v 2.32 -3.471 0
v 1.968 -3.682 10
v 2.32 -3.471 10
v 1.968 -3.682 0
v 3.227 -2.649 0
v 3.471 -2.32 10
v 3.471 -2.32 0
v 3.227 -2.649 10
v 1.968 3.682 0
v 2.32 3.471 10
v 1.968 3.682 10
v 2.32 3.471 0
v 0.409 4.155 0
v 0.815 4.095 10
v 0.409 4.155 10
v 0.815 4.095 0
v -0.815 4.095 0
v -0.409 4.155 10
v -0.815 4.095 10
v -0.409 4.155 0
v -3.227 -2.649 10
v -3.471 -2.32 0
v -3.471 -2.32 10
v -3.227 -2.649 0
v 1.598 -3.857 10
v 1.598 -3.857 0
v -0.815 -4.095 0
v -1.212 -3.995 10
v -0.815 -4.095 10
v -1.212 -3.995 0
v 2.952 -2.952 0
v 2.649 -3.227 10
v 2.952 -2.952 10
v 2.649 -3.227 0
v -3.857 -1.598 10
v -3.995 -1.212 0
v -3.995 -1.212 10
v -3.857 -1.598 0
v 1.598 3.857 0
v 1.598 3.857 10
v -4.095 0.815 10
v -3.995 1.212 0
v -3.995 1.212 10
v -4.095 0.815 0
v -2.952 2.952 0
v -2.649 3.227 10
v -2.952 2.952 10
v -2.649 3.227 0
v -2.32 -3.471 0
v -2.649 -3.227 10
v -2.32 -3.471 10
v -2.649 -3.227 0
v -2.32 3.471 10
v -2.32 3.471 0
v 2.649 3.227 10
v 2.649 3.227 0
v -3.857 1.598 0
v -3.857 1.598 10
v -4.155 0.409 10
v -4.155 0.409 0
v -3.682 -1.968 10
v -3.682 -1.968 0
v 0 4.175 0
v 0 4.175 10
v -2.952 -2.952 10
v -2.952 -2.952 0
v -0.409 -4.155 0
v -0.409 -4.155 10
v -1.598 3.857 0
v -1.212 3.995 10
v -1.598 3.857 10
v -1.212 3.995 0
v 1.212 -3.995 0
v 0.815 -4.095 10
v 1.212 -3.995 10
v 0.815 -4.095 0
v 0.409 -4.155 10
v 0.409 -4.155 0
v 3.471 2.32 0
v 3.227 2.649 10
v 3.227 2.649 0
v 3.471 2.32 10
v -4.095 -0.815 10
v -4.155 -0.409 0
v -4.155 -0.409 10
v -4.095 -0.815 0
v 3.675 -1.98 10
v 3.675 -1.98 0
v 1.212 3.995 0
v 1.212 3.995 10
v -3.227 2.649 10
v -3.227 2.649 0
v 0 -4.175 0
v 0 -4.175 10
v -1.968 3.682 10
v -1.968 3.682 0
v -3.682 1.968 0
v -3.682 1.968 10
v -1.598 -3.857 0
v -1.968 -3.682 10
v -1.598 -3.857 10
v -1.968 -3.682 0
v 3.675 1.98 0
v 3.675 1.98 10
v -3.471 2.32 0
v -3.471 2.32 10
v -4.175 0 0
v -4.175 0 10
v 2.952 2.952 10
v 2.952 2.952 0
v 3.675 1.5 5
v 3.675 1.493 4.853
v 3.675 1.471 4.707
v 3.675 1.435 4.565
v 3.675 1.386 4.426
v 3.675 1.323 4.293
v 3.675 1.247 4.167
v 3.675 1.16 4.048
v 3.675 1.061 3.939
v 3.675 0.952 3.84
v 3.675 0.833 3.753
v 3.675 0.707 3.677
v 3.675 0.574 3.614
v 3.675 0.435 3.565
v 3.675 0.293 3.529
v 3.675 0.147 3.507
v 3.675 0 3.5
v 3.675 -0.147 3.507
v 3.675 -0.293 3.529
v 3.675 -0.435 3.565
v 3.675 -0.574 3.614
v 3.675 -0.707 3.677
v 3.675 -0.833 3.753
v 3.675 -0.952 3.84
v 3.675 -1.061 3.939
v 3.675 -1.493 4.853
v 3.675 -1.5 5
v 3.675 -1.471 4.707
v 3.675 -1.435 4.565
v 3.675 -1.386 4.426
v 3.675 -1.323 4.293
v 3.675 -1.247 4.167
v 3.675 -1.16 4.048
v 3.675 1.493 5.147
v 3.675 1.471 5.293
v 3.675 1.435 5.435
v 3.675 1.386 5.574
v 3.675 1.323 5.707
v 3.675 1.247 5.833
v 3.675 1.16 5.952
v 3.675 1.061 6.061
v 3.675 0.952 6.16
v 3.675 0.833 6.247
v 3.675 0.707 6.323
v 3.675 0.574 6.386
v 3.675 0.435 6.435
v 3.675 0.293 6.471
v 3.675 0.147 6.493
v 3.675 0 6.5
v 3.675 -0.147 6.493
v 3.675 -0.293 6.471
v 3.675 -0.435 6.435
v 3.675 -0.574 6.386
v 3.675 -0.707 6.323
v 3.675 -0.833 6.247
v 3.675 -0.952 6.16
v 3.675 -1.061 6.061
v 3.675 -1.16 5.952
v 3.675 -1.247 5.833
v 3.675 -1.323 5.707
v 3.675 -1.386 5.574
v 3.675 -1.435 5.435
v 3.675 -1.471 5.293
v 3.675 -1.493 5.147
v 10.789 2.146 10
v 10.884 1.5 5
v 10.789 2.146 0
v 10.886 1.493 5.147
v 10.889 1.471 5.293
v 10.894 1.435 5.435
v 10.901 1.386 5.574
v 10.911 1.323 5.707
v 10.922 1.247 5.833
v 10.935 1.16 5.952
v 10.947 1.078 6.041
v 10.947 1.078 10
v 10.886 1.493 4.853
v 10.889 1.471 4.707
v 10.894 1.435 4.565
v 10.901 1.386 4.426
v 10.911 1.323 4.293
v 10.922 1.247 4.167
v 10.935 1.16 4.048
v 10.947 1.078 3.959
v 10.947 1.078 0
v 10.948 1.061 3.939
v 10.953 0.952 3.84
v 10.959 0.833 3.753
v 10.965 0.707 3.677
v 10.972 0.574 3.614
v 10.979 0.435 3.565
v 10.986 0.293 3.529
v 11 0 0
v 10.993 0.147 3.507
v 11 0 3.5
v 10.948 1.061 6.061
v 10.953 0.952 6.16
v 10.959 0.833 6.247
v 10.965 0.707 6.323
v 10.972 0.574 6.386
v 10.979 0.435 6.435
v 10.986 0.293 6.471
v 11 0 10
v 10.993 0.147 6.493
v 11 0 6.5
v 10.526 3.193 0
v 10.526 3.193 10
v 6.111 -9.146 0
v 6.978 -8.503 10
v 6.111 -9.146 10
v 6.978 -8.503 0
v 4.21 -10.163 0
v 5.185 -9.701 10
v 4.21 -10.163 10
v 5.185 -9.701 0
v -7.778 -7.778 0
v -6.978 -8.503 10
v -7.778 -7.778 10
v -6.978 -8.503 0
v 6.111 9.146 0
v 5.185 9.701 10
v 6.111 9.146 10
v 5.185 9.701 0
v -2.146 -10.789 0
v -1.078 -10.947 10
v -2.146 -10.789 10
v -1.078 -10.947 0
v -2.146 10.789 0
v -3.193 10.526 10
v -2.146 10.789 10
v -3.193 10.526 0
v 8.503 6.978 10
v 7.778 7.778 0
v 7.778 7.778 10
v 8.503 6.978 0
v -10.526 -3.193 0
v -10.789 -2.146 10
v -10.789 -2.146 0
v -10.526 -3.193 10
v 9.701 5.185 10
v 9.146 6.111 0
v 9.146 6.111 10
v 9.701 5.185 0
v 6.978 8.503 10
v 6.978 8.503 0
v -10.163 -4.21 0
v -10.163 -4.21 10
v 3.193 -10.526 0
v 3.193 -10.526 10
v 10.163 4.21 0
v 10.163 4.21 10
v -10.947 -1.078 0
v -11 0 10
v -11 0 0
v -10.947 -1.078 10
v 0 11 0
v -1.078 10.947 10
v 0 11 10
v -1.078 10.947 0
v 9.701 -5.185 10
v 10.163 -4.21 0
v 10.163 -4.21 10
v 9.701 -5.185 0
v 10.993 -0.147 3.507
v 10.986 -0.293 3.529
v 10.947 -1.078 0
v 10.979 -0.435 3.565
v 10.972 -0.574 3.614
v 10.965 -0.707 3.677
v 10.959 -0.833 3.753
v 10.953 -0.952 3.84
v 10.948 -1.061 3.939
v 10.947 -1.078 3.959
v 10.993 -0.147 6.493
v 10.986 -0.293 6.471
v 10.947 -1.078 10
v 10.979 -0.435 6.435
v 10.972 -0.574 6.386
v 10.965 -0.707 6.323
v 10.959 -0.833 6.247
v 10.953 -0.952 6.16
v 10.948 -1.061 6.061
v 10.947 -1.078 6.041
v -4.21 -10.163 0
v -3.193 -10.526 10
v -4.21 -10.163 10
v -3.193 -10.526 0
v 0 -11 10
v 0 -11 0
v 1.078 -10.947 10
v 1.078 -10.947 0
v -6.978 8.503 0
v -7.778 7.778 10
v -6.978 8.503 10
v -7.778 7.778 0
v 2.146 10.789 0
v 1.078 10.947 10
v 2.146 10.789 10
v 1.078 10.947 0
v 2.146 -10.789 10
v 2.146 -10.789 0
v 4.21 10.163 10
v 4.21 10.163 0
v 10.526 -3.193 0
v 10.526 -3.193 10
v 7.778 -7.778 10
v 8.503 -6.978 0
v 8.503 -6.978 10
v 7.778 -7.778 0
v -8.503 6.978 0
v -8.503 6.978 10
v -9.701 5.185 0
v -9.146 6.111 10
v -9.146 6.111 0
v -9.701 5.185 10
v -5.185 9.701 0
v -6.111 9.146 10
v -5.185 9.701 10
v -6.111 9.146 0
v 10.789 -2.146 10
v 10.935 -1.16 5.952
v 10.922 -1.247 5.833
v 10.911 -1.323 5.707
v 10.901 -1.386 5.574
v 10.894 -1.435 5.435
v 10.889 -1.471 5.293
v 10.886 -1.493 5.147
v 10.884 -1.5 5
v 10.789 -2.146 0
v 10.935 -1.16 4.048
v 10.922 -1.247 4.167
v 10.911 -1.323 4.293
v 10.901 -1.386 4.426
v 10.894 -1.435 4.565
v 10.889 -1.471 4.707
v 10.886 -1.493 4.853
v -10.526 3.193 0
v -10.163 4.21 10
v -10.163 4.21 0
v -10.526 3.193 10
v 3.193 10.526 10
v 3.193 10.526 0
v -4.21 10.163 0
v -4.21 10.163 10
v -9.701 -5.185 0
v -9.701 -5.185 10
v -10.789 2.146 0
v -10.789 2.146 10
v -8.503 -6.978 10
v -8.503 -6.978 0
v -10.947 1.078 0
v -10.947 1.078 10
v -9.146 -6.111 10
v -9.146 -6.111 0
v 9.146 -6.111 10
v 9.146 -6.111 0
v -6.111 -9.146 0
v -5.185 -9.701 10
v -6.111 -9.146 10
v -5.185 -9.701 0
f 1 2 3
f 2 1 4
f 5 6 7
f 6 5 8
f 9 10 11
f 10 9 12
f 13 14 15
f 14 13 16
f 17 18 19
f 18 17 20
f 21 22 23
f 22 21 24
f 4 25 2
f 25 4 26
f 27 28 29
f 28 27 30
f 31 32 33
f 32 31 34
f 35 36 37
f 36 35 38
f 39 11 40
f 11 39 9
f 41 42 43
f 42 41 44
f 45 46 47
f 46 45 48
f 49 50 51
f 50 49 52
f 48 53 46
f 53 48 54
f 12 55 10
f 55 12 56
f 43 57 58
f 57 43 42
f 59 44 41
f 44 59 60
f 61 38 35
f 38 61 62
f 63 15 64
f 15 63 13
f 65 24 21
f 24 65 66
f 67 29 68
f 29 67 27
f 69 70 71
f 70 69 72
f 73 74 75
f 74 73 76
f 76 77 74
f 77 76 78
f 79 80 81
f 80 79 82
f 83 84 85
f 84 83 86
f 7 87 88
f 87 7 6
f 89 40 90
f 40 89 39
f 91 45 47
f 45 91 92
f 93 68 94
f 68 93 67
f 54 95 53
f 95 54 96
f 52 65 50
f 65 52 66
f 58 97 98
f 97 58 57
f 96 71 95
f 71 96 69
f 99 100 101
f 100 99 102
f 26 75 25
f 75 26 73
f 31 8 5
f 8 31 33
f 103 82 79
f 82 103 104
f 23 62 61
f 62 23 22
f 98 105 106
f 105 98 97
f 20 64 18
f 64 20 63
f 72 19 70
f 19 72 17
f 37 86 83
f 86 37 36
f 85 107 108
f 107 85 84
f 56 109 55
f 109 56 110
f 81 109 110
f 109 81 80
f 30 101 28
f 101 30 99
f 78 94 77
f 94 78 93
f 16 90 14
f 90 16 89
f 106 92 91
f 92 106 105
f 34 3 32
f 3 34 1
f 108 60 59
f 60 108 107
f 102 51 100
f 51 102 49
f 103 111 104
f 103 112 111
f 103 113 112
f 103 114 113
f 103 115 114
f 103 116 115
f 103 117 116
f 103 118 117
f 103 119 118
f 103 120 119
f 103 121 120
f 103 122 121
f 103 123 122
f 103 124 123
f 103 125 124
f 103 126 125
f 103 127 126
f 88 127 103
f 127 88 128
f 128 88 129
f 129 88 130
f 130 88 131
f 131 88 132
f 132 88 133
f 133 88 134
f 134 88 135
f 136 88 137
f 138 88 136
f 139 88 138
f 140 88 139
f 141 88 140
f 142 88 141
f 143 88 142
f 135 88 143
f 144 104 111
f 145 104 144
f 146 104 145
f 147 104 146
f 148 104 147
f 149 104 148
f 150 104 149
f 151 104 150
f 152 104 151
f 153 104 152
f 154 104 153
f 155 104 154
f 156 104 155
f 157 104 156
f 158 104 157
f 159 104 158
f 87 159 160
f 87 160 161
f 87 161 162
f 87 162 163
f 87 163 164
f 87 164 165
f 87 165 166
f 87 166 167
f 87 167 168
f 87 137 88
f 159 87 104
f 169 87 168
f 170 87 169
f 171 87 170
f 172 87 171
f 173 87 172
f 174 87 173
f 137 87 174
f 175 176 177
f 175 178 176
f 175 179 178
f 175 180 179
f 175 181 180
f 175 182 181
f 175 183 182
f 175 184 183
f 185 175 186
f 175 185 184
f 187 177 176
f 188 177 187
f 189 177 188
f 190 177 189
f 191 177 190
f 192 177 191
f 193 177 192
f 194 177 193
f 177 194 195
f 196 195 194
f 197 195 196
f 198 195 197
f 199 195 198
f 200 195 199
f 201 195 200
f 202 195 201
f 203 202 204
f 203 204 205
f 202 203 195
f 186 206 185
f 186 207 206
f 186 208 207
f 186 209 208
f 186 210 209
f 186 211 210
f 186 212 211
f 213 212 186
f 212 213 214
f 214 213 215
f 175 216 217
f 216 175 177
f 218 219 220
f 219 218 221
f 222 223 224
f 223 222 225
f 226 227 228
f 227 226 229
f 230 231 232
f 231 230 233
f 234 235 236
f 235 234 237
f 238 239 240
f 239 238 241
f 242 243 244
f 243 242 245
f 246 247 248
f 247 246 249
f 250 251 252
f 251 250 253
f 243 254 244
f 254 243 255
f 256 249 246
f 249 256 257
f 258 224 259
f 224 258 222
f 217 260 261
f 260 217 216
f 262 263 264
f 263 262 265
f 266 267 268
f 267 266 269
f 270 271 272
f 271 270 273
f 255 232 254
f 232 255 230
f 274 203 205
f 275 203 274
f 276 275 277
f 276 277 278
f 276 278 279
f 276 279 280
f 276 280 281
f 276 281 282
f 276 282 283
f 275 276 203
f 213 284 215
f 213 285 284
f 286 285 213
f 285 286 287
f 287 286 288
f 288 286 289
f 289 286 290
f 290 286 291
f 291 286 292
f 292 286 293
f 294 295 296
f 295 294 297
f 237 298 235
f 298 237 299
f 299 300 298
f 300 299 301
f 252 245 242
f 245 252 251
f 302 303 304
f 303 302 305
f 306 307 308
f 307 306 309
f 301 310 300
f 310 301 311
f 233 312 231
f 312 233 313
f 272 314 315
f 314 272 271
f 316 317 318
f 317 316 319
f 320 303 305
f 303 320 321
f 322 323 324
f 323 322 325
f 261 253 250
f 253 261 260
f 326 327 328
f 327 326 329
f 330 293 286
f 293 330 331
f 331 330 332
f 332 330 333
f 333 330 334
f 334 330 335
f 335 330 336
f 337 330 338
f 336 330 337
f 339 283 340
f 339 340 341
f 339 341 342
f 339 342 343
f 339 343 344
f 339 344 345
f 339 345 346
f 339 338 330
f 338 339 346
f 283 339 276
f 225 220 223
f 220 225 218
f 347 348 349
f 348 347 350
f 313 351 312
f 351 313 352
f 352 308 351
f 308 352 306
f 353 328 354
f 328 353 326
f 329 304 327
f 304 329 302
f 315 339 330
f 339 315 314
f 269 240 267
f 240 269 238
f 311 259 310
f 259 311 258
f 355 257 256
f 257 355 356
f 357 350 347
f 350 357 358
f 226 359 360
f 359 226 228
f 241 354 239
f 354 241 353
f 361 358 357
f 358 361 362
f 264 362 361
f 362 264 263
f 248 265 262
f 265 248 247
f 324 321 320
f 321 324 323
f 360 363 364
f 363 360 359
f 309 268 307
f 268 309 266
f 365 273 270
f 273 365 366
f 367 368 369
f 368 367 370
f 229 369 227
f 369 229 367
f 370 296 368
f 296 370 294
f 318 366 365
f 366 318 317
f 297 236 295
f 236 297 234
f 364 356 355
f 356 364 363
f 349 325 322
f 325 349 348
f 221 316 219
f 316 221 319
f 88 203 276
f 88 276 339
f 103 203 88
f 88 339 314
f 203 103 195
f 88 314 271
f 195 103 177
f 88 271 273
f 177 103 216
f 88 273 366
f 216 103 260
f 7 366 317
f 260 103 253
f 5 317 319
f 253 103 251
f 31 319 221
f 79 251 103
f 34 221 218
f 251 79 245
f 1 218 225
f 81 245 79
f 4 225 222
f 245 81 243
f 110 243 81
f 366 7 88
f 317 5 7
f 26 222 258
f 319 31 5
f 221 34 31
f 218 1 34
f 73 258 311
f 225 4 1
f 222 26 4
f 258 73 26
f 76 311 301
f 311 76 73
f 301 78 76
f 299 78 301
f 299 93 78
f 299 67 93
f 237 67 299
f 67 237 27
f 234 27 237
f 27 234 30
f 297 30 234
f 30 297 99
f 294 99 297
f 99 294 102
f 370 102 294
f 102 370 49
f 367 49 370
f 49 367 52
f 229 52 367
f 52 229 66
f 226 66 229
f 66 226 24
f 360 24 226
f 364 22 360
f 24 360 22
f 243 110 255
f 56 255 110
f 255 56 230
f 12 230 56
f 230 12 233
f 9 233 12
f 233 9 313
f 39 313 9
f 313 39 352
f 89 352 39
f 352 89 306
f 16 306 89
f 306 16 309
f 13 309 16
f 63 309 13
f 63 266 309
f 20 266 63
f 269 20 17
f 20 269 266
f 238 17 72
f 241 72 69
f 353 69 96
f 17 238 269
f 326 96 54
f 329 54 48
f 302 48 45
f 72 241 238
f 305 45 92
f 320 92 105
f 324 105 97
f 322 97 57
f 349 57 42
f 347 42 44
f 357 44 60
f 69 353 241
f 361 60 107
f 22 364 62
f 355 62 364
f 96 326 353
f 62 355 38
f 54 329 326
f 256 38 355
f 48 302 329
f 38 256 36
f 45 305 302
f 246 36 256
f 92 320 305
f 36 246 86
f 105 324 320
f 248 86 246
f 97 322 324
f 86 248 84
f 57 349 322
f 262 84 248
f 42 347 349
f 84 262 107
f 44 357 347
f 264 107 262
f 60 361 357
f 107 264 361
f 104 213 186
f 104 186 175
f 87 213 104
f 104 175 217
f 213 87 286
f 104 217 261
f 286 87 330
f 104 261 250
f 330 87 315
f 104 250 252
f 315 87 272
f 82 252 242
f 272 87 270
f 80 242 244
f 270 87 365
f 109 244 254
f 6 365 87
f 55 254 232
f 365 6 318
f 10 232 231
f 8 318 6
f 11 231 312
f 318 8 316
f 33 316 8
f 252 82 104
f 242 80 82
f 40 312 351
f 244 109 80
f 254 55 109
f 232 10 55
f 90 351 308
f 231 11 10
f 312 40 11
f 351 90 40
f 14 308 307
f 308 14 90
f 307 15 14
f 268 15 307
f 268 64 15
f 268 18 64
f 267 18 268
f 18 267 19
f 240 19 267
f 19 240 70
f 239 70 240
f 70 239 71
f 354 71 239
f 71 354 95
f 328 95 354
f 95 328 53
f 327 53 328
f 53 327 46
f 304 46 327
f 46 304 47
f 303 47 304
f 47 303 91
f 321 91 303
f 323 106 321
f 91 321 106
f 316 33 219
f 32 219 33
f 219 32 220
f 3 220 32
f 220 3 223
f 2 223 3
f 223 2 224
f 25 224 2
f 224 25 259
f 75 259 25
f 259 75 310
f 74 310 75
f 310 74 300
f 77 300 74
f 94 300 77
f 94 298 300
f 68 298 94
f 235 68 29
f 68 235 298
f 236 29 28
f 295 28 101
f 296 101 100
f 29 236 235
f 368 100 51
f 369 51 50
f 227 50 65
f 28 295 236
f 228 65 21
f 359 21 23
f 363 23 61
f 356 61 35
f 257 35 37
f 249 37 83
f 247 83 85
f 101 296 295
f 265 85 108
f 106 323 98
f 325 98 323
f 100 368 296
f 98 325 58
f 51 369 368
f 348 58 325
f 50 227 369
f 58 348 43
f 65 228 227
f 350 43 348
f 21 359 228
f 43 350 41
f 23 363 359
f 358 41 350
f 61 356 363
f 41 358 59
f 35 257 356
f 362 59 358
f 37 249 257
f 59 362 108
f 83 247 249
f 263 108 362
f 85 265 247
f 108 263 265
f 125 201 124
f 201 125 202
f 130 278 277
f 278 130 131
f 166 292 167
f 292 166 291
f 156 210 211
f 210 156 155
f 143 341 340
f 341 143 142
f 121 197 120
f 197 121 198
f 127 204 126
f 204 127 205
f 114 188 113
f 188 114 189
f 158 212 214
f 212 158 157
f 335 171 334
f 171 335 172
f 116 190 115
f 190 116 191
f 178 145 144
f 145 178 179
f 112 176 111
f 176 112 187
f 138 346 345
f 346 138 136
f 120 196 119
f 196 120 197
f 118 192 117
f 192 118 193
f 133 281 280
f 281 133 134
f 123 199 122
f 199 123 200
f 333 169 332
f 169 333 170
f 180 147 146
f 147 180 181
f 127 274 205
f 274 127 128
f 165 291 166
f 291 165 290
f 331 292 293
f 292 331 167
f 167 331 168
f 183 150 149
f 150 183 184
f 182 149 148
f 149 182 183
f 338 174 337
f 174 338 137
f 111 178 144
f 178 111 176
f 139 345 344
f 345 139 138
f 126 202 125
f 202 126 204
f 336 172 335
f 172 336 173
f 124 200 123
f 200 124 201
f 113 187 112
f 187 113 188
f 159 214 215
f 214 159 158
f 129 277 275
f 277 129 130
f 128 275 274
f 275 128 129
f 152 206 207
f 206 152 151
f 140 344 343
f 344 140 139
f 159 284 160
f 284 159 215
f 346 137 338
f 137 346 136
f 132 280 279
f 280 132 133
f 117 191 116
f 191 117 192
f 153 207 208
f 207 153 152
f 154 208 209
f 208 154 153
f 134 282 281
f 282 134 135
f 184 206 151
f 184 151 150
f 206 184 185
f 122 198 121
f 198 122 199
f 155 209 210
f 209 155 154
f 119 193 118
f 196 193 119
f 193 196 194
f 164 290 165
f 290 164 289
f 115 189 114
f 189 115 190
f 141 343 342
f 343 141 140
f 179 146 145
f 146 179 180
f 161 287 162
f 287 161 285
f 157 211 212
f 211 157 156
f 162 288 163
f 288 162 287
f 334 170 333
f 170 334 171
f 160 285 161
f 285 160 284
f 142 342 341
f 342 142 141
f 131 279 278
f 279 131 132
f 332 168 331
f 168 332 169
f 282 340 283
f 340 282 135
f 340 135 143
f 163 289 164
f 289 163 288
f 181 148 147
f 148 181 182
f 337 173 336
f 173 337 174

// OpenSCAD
// Gen-CR — shaft collar with D-flat bore (set screw bears on the flat); print x4
include <parameters.scad>;
$fn = 64;
// D-flat keyed bore: flat faces +X (angle 0 = magnet pocket 0 = index notch)
module dflat_bore(h) {
    intersection() {
        cylinder(d=shaft_bore, h=h);
        translate([-shaft_bore, -shaft_bore, 0]) cube([shaft_bore + dflat_x, 2*shaft_bore, h]);
    }
}

od = 22; h = collar_h; set_d = 3.0;
difference() {
    cylinder(d=od, h=h);
    translate([0, 0, -0.1]) dflat_bore(h + 0.2);
    translate([0, 0, h/2]) rotate([0, 90, 0]) cylinder(d=set_d, h=od);
}
